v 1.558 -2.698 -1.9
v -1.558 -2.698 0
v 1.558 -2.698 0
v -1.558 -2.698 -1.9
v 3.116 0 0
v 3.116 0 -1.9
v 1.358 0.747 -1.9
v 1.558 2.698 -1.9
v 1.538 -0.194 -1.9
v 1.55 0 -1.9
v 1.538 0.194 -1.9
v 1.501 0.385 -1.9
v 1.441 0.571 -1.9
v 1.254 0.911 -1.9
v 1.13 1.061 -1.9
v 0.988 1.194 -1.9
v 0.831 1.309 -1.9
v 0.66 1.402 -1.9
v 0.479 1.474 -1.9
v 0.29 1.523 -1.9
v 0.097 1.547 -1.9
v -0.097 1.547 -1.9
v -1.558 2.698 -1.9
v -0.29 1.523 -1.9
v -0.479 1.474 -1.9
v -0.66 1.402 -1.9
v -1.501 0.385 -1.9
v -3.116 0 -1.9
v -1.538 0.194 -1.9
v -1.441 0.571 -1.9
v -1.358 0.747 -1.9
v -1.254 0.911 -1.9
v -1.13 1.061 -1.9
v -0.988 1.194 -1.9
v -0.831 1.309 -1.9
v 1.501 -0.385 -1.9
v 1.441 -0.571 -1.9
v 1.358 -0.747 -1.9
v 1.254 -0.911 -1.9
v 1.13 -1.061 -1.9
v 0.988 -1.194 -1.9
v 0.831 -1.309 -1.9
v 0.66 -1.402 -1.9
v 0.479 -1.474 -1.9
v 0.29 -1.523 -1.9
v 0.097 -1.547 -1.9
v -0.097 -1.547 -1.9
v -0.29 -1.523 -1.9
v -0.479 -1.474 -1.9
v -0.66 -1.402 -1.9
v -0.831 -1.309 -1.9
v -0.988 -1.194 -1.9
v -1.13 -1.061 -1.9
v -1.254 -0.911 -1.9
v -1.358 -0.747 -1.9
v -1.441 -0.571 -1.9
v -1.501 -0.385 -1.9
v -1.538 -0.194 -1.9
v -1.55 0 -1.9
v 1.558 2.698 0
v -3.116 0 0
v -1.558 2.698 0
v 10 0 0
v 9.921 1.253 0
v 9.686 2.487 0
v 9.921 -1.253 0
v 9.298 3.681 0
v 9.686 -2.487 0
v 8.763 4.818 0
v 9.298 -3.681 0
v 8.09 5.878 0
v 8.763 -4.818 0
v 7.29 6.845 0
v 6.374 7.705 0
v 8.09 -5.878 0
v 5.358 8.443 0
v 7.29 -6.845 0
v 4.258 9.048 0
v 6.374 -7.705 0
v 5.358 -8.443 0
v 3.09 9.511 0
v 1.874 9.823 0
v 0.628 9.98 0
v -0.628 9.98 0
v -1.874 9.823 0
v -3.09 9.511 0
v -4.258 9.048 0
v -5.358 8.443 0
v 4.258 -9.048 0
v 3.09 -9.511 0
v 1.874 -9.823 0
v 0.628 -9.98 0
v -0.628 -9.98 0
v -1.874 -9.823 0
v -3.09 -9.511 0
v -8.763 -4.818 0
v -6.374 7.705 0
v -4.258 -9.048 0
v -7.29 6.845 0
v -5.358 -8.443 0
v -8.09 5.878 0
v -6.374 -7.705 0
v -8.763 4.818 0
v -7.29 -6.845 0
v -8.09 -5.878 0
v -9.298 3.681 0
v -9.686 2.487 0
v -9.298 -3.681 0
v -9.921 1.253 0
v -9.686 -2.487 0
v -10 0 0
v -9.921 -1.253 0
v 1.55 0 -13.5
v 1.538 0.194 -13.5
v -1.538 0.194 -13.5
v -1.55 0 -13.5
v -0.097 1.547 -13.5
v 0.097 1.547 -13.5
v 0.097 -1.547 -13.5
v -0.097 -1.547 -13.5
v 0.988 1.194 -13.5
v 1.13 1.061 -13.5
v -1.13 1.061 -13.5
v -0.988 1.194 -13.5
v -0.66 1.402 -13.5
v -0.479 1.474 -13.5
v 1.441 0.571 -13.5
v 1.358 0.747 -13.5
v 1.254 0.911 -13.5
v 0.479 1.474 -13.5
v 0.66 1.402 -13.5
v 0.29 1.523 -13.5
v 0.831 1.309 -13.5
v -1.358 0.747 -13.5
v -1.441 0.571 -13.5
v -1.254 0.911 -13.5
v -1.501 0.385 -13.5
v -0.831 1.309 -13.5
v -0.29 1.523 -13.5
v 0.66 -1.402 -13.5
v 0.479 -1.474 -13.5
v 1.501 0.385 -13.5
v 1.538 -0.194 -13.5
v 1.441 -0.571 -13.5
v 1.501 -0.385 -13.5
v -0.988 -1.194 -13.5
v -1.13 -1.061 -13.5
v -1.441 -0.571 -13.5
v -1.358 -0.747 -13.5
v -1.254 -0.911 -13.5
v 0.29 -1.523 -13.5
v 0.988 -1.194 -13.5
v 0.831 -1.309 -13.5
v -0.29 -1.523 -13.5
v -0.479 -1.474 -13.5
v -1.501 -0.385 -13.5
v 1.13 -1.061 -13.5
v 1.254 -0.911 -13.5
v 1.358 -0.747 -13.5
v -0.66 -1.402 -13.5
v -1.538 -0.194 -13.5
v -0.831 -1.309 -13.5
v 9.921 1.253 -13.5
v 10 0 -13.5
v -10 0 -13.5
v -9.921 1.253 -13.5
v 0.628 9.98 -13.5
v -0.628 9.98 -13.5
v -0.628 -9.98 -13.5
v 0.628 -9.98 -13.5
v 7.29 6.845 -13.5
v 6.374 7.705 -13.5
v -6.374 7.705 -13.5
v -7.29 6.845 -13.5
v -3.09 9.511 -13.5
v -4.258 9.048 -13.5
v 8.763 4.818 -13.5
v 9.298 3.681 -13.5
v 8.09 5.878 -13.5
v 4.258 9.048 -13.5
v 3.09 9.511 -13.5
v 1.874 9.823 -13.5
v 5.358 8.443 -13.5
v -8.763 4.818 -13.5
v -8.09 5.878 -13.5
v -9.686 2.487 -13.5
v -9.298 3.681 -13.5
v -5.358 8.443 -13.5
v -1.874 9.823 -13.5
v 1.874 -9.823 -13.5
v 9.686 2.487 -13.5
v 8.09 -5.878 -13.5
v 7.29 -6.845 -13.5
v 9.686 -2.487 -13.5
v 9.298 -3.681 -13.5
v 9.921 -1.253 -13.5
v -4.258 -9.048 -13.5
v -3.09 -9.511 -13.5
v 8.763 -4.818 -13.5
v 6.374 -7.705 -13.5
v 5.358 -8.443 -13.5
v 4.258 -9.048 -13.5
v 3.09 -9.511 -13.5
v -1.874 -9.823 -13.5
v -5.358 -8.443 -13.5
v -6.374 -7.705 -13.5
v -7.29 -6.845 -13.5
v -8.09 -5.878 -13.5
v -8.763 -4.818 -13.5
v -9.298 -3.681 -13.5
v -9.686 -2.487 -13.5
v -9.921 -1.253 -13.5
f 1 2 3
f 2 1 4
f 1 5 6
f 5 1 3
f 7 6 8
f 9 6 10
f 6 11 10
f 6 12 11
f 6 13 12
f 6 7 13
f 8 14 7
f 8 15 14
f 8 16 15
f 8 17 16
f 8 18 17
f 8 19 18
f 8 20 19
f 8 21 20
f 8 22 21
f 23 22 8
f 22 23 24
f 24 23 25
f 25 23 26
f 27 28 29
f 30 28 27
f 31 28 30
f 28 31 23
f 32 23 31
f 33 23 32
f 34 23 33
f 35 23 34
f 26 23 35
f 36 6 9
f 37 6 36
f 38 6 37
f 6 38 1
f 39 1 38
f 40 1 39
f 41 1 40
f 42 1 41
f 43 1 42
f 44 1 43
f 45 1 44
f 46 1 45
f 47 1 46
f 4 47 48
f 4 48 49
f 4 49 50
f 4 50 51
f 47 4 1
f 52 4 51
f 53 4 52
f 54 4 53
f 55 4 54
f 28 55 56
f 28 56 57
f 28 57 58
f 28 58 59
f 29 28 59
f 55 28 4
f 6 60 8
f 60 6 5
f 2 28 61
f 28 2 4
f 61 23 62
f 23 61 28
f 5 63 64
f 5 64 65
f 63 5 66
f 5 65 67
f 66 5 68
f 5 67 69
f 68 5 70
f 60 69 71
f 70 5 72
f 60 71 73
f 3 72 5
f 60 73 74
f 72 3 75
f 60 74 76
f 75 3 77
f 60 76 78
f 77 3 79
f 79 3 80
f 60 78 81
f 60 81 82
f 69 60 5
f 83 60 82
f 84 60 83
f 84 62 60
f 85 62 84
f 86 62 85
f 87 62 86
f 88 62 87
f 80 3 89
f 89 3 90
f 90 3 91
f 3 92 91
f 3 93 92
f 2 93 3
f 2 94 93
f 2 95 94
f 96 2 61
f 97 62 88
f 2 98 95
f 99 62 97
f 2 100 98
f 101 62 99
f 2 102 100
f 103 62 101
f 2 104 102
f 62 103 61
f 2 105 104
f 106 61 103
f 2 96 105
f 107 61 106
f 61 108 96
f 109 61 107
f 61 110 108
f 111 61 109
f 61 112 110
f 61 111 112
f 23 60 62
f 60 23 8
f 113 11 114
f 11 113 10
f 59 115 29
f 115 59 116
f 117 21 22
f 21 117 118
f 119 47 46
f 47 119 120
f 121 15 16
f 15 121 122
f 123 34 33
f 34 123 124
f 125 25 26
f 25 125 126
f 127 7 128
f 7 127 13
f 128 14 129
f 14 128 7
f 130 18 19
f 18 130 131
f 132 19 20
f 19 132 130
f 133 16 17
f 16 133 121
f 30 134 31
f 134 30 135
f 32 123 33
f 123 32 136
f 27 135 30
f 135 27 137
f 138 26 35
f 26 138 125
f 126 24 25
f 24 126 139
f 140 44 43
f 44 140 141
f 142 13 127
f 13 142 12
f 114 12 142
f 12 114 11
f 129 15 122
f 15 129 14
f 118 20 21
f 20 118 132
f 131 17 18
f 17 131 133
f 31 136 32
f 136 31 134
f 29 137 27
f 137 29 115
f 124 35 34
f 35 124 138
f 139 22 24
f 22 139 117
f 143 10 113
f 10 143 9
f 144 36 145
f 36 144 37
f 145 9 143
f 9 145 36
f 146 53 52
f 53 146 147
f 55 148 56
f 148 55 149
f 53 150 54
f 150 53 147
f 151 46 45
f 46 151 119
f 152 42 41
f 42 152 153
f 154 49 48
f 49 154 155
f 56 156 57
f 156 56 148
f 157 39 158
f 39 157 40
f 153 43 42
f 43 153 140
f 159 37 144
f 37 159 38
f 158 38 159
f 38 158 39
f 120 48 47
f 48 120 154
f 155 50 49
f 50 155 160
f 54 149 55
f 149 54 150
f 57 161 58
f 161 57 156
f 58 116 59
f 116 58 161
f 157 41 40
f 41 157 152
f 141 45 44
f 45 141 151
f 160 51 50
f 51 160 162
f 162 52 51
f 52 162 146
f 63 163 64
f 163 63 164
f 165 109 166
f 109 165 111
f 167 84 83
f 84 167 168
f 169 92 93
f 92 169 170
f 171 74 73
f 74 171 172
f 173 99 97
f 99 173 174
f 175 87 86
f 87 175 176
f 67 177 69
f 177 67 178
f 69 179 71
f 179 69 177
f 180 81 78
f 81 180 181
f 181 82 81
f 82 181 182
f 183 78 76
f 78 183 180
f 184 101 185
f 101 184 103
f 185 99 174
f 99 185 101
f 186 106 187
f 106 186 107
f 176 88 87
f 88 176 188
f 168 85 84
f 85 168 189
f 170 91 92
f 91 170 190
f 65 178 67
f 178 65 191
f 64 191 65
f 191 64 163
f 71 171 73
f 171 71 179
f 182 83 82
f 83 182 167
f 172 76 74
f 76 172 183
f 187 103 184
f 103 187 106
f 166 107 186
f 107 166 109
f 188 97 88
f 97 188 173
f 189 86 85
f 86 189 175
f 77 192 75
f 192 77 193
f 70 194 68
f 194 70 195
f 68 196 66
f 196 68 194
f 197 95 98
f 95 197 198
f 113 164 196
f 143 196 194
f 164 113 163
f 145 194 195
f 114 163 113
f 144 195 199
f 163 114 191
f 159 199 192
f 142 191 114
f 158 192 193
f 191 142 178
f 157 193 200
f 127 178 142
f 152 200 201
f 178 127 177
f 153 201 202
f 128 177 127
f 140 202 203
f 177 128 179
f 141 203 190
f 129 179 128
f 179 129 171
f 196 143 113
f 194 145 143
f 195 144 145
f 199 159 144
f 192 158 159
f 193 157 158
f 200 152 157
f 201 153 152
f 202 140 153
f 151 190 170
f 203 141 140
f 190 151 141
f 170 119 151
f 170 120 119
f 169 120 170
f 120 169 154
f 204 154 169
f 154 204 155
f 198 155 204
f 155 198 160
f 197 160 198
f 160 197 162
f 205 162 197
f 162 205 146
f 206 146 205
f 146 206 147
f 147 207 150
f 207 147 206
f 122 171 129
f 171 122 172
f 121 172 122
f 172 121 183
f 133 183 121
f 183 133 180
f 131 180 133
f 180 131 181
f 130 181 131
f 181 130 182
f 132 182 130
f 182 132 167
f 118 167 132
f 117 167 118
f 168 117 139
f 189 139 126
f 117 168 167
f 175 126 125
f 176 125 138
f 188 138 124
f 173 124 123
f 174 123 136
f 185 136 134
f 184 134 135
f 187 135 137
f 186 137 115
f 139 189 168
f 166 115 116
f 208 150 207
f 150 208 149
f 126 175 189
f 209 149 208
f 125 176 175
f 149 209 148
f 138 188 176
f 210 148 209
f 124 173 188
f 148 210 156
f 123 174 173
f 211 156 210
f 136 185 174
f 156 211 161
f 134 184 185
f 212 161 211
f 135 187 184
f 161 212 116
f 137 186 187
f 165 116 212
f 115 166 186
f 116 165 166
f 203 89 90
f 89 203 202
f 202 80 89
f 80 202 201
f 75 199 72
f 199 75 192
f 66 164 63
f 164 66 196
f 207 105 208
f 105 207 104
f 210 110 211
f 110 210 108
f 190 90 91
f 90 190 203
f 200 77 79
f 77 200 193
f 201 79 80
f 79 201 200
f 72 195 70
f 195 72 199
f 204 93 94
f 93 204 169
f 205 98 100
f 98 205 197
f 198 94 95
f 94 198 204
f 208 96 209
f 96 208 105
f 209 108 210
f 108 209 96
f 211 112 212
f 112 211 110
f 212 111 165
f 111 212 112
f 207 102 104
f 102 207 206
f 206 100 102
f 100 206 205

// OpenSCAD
$fn = 50;


difference() {
	union() {
		translate(v = [0, 0, -13.5000000000]) {
			cylinder(h = 13.5000000000, r = 10.0000000000);
		}
	}
	union() {
		translate(v = [0, 0, 0]) {
			rotate(a = [0, 0, 0]) {
				difference() {
					union() {
						translate(v = [0, 0, -1.9000000000]) {
							linear_extrude(height = 1.9000000000) {
								polygon(points = [[3.1158000000, 0.0000000000], [1.5579000000, 2.6983619531], [-1.5579000000, 2.6983619531], [-3.1158000000, 0.0000000000], [-1.5579000000, -2.6983619531], [1.5579000000, -2.6983619531]]);
							}
						}
					}
					union();
				}
			}
		}
		#translate(v = [0, 0, -100.0000000000]) {
			cylinder(h = 200, r = 1.5500000000);
		}
	}
}
